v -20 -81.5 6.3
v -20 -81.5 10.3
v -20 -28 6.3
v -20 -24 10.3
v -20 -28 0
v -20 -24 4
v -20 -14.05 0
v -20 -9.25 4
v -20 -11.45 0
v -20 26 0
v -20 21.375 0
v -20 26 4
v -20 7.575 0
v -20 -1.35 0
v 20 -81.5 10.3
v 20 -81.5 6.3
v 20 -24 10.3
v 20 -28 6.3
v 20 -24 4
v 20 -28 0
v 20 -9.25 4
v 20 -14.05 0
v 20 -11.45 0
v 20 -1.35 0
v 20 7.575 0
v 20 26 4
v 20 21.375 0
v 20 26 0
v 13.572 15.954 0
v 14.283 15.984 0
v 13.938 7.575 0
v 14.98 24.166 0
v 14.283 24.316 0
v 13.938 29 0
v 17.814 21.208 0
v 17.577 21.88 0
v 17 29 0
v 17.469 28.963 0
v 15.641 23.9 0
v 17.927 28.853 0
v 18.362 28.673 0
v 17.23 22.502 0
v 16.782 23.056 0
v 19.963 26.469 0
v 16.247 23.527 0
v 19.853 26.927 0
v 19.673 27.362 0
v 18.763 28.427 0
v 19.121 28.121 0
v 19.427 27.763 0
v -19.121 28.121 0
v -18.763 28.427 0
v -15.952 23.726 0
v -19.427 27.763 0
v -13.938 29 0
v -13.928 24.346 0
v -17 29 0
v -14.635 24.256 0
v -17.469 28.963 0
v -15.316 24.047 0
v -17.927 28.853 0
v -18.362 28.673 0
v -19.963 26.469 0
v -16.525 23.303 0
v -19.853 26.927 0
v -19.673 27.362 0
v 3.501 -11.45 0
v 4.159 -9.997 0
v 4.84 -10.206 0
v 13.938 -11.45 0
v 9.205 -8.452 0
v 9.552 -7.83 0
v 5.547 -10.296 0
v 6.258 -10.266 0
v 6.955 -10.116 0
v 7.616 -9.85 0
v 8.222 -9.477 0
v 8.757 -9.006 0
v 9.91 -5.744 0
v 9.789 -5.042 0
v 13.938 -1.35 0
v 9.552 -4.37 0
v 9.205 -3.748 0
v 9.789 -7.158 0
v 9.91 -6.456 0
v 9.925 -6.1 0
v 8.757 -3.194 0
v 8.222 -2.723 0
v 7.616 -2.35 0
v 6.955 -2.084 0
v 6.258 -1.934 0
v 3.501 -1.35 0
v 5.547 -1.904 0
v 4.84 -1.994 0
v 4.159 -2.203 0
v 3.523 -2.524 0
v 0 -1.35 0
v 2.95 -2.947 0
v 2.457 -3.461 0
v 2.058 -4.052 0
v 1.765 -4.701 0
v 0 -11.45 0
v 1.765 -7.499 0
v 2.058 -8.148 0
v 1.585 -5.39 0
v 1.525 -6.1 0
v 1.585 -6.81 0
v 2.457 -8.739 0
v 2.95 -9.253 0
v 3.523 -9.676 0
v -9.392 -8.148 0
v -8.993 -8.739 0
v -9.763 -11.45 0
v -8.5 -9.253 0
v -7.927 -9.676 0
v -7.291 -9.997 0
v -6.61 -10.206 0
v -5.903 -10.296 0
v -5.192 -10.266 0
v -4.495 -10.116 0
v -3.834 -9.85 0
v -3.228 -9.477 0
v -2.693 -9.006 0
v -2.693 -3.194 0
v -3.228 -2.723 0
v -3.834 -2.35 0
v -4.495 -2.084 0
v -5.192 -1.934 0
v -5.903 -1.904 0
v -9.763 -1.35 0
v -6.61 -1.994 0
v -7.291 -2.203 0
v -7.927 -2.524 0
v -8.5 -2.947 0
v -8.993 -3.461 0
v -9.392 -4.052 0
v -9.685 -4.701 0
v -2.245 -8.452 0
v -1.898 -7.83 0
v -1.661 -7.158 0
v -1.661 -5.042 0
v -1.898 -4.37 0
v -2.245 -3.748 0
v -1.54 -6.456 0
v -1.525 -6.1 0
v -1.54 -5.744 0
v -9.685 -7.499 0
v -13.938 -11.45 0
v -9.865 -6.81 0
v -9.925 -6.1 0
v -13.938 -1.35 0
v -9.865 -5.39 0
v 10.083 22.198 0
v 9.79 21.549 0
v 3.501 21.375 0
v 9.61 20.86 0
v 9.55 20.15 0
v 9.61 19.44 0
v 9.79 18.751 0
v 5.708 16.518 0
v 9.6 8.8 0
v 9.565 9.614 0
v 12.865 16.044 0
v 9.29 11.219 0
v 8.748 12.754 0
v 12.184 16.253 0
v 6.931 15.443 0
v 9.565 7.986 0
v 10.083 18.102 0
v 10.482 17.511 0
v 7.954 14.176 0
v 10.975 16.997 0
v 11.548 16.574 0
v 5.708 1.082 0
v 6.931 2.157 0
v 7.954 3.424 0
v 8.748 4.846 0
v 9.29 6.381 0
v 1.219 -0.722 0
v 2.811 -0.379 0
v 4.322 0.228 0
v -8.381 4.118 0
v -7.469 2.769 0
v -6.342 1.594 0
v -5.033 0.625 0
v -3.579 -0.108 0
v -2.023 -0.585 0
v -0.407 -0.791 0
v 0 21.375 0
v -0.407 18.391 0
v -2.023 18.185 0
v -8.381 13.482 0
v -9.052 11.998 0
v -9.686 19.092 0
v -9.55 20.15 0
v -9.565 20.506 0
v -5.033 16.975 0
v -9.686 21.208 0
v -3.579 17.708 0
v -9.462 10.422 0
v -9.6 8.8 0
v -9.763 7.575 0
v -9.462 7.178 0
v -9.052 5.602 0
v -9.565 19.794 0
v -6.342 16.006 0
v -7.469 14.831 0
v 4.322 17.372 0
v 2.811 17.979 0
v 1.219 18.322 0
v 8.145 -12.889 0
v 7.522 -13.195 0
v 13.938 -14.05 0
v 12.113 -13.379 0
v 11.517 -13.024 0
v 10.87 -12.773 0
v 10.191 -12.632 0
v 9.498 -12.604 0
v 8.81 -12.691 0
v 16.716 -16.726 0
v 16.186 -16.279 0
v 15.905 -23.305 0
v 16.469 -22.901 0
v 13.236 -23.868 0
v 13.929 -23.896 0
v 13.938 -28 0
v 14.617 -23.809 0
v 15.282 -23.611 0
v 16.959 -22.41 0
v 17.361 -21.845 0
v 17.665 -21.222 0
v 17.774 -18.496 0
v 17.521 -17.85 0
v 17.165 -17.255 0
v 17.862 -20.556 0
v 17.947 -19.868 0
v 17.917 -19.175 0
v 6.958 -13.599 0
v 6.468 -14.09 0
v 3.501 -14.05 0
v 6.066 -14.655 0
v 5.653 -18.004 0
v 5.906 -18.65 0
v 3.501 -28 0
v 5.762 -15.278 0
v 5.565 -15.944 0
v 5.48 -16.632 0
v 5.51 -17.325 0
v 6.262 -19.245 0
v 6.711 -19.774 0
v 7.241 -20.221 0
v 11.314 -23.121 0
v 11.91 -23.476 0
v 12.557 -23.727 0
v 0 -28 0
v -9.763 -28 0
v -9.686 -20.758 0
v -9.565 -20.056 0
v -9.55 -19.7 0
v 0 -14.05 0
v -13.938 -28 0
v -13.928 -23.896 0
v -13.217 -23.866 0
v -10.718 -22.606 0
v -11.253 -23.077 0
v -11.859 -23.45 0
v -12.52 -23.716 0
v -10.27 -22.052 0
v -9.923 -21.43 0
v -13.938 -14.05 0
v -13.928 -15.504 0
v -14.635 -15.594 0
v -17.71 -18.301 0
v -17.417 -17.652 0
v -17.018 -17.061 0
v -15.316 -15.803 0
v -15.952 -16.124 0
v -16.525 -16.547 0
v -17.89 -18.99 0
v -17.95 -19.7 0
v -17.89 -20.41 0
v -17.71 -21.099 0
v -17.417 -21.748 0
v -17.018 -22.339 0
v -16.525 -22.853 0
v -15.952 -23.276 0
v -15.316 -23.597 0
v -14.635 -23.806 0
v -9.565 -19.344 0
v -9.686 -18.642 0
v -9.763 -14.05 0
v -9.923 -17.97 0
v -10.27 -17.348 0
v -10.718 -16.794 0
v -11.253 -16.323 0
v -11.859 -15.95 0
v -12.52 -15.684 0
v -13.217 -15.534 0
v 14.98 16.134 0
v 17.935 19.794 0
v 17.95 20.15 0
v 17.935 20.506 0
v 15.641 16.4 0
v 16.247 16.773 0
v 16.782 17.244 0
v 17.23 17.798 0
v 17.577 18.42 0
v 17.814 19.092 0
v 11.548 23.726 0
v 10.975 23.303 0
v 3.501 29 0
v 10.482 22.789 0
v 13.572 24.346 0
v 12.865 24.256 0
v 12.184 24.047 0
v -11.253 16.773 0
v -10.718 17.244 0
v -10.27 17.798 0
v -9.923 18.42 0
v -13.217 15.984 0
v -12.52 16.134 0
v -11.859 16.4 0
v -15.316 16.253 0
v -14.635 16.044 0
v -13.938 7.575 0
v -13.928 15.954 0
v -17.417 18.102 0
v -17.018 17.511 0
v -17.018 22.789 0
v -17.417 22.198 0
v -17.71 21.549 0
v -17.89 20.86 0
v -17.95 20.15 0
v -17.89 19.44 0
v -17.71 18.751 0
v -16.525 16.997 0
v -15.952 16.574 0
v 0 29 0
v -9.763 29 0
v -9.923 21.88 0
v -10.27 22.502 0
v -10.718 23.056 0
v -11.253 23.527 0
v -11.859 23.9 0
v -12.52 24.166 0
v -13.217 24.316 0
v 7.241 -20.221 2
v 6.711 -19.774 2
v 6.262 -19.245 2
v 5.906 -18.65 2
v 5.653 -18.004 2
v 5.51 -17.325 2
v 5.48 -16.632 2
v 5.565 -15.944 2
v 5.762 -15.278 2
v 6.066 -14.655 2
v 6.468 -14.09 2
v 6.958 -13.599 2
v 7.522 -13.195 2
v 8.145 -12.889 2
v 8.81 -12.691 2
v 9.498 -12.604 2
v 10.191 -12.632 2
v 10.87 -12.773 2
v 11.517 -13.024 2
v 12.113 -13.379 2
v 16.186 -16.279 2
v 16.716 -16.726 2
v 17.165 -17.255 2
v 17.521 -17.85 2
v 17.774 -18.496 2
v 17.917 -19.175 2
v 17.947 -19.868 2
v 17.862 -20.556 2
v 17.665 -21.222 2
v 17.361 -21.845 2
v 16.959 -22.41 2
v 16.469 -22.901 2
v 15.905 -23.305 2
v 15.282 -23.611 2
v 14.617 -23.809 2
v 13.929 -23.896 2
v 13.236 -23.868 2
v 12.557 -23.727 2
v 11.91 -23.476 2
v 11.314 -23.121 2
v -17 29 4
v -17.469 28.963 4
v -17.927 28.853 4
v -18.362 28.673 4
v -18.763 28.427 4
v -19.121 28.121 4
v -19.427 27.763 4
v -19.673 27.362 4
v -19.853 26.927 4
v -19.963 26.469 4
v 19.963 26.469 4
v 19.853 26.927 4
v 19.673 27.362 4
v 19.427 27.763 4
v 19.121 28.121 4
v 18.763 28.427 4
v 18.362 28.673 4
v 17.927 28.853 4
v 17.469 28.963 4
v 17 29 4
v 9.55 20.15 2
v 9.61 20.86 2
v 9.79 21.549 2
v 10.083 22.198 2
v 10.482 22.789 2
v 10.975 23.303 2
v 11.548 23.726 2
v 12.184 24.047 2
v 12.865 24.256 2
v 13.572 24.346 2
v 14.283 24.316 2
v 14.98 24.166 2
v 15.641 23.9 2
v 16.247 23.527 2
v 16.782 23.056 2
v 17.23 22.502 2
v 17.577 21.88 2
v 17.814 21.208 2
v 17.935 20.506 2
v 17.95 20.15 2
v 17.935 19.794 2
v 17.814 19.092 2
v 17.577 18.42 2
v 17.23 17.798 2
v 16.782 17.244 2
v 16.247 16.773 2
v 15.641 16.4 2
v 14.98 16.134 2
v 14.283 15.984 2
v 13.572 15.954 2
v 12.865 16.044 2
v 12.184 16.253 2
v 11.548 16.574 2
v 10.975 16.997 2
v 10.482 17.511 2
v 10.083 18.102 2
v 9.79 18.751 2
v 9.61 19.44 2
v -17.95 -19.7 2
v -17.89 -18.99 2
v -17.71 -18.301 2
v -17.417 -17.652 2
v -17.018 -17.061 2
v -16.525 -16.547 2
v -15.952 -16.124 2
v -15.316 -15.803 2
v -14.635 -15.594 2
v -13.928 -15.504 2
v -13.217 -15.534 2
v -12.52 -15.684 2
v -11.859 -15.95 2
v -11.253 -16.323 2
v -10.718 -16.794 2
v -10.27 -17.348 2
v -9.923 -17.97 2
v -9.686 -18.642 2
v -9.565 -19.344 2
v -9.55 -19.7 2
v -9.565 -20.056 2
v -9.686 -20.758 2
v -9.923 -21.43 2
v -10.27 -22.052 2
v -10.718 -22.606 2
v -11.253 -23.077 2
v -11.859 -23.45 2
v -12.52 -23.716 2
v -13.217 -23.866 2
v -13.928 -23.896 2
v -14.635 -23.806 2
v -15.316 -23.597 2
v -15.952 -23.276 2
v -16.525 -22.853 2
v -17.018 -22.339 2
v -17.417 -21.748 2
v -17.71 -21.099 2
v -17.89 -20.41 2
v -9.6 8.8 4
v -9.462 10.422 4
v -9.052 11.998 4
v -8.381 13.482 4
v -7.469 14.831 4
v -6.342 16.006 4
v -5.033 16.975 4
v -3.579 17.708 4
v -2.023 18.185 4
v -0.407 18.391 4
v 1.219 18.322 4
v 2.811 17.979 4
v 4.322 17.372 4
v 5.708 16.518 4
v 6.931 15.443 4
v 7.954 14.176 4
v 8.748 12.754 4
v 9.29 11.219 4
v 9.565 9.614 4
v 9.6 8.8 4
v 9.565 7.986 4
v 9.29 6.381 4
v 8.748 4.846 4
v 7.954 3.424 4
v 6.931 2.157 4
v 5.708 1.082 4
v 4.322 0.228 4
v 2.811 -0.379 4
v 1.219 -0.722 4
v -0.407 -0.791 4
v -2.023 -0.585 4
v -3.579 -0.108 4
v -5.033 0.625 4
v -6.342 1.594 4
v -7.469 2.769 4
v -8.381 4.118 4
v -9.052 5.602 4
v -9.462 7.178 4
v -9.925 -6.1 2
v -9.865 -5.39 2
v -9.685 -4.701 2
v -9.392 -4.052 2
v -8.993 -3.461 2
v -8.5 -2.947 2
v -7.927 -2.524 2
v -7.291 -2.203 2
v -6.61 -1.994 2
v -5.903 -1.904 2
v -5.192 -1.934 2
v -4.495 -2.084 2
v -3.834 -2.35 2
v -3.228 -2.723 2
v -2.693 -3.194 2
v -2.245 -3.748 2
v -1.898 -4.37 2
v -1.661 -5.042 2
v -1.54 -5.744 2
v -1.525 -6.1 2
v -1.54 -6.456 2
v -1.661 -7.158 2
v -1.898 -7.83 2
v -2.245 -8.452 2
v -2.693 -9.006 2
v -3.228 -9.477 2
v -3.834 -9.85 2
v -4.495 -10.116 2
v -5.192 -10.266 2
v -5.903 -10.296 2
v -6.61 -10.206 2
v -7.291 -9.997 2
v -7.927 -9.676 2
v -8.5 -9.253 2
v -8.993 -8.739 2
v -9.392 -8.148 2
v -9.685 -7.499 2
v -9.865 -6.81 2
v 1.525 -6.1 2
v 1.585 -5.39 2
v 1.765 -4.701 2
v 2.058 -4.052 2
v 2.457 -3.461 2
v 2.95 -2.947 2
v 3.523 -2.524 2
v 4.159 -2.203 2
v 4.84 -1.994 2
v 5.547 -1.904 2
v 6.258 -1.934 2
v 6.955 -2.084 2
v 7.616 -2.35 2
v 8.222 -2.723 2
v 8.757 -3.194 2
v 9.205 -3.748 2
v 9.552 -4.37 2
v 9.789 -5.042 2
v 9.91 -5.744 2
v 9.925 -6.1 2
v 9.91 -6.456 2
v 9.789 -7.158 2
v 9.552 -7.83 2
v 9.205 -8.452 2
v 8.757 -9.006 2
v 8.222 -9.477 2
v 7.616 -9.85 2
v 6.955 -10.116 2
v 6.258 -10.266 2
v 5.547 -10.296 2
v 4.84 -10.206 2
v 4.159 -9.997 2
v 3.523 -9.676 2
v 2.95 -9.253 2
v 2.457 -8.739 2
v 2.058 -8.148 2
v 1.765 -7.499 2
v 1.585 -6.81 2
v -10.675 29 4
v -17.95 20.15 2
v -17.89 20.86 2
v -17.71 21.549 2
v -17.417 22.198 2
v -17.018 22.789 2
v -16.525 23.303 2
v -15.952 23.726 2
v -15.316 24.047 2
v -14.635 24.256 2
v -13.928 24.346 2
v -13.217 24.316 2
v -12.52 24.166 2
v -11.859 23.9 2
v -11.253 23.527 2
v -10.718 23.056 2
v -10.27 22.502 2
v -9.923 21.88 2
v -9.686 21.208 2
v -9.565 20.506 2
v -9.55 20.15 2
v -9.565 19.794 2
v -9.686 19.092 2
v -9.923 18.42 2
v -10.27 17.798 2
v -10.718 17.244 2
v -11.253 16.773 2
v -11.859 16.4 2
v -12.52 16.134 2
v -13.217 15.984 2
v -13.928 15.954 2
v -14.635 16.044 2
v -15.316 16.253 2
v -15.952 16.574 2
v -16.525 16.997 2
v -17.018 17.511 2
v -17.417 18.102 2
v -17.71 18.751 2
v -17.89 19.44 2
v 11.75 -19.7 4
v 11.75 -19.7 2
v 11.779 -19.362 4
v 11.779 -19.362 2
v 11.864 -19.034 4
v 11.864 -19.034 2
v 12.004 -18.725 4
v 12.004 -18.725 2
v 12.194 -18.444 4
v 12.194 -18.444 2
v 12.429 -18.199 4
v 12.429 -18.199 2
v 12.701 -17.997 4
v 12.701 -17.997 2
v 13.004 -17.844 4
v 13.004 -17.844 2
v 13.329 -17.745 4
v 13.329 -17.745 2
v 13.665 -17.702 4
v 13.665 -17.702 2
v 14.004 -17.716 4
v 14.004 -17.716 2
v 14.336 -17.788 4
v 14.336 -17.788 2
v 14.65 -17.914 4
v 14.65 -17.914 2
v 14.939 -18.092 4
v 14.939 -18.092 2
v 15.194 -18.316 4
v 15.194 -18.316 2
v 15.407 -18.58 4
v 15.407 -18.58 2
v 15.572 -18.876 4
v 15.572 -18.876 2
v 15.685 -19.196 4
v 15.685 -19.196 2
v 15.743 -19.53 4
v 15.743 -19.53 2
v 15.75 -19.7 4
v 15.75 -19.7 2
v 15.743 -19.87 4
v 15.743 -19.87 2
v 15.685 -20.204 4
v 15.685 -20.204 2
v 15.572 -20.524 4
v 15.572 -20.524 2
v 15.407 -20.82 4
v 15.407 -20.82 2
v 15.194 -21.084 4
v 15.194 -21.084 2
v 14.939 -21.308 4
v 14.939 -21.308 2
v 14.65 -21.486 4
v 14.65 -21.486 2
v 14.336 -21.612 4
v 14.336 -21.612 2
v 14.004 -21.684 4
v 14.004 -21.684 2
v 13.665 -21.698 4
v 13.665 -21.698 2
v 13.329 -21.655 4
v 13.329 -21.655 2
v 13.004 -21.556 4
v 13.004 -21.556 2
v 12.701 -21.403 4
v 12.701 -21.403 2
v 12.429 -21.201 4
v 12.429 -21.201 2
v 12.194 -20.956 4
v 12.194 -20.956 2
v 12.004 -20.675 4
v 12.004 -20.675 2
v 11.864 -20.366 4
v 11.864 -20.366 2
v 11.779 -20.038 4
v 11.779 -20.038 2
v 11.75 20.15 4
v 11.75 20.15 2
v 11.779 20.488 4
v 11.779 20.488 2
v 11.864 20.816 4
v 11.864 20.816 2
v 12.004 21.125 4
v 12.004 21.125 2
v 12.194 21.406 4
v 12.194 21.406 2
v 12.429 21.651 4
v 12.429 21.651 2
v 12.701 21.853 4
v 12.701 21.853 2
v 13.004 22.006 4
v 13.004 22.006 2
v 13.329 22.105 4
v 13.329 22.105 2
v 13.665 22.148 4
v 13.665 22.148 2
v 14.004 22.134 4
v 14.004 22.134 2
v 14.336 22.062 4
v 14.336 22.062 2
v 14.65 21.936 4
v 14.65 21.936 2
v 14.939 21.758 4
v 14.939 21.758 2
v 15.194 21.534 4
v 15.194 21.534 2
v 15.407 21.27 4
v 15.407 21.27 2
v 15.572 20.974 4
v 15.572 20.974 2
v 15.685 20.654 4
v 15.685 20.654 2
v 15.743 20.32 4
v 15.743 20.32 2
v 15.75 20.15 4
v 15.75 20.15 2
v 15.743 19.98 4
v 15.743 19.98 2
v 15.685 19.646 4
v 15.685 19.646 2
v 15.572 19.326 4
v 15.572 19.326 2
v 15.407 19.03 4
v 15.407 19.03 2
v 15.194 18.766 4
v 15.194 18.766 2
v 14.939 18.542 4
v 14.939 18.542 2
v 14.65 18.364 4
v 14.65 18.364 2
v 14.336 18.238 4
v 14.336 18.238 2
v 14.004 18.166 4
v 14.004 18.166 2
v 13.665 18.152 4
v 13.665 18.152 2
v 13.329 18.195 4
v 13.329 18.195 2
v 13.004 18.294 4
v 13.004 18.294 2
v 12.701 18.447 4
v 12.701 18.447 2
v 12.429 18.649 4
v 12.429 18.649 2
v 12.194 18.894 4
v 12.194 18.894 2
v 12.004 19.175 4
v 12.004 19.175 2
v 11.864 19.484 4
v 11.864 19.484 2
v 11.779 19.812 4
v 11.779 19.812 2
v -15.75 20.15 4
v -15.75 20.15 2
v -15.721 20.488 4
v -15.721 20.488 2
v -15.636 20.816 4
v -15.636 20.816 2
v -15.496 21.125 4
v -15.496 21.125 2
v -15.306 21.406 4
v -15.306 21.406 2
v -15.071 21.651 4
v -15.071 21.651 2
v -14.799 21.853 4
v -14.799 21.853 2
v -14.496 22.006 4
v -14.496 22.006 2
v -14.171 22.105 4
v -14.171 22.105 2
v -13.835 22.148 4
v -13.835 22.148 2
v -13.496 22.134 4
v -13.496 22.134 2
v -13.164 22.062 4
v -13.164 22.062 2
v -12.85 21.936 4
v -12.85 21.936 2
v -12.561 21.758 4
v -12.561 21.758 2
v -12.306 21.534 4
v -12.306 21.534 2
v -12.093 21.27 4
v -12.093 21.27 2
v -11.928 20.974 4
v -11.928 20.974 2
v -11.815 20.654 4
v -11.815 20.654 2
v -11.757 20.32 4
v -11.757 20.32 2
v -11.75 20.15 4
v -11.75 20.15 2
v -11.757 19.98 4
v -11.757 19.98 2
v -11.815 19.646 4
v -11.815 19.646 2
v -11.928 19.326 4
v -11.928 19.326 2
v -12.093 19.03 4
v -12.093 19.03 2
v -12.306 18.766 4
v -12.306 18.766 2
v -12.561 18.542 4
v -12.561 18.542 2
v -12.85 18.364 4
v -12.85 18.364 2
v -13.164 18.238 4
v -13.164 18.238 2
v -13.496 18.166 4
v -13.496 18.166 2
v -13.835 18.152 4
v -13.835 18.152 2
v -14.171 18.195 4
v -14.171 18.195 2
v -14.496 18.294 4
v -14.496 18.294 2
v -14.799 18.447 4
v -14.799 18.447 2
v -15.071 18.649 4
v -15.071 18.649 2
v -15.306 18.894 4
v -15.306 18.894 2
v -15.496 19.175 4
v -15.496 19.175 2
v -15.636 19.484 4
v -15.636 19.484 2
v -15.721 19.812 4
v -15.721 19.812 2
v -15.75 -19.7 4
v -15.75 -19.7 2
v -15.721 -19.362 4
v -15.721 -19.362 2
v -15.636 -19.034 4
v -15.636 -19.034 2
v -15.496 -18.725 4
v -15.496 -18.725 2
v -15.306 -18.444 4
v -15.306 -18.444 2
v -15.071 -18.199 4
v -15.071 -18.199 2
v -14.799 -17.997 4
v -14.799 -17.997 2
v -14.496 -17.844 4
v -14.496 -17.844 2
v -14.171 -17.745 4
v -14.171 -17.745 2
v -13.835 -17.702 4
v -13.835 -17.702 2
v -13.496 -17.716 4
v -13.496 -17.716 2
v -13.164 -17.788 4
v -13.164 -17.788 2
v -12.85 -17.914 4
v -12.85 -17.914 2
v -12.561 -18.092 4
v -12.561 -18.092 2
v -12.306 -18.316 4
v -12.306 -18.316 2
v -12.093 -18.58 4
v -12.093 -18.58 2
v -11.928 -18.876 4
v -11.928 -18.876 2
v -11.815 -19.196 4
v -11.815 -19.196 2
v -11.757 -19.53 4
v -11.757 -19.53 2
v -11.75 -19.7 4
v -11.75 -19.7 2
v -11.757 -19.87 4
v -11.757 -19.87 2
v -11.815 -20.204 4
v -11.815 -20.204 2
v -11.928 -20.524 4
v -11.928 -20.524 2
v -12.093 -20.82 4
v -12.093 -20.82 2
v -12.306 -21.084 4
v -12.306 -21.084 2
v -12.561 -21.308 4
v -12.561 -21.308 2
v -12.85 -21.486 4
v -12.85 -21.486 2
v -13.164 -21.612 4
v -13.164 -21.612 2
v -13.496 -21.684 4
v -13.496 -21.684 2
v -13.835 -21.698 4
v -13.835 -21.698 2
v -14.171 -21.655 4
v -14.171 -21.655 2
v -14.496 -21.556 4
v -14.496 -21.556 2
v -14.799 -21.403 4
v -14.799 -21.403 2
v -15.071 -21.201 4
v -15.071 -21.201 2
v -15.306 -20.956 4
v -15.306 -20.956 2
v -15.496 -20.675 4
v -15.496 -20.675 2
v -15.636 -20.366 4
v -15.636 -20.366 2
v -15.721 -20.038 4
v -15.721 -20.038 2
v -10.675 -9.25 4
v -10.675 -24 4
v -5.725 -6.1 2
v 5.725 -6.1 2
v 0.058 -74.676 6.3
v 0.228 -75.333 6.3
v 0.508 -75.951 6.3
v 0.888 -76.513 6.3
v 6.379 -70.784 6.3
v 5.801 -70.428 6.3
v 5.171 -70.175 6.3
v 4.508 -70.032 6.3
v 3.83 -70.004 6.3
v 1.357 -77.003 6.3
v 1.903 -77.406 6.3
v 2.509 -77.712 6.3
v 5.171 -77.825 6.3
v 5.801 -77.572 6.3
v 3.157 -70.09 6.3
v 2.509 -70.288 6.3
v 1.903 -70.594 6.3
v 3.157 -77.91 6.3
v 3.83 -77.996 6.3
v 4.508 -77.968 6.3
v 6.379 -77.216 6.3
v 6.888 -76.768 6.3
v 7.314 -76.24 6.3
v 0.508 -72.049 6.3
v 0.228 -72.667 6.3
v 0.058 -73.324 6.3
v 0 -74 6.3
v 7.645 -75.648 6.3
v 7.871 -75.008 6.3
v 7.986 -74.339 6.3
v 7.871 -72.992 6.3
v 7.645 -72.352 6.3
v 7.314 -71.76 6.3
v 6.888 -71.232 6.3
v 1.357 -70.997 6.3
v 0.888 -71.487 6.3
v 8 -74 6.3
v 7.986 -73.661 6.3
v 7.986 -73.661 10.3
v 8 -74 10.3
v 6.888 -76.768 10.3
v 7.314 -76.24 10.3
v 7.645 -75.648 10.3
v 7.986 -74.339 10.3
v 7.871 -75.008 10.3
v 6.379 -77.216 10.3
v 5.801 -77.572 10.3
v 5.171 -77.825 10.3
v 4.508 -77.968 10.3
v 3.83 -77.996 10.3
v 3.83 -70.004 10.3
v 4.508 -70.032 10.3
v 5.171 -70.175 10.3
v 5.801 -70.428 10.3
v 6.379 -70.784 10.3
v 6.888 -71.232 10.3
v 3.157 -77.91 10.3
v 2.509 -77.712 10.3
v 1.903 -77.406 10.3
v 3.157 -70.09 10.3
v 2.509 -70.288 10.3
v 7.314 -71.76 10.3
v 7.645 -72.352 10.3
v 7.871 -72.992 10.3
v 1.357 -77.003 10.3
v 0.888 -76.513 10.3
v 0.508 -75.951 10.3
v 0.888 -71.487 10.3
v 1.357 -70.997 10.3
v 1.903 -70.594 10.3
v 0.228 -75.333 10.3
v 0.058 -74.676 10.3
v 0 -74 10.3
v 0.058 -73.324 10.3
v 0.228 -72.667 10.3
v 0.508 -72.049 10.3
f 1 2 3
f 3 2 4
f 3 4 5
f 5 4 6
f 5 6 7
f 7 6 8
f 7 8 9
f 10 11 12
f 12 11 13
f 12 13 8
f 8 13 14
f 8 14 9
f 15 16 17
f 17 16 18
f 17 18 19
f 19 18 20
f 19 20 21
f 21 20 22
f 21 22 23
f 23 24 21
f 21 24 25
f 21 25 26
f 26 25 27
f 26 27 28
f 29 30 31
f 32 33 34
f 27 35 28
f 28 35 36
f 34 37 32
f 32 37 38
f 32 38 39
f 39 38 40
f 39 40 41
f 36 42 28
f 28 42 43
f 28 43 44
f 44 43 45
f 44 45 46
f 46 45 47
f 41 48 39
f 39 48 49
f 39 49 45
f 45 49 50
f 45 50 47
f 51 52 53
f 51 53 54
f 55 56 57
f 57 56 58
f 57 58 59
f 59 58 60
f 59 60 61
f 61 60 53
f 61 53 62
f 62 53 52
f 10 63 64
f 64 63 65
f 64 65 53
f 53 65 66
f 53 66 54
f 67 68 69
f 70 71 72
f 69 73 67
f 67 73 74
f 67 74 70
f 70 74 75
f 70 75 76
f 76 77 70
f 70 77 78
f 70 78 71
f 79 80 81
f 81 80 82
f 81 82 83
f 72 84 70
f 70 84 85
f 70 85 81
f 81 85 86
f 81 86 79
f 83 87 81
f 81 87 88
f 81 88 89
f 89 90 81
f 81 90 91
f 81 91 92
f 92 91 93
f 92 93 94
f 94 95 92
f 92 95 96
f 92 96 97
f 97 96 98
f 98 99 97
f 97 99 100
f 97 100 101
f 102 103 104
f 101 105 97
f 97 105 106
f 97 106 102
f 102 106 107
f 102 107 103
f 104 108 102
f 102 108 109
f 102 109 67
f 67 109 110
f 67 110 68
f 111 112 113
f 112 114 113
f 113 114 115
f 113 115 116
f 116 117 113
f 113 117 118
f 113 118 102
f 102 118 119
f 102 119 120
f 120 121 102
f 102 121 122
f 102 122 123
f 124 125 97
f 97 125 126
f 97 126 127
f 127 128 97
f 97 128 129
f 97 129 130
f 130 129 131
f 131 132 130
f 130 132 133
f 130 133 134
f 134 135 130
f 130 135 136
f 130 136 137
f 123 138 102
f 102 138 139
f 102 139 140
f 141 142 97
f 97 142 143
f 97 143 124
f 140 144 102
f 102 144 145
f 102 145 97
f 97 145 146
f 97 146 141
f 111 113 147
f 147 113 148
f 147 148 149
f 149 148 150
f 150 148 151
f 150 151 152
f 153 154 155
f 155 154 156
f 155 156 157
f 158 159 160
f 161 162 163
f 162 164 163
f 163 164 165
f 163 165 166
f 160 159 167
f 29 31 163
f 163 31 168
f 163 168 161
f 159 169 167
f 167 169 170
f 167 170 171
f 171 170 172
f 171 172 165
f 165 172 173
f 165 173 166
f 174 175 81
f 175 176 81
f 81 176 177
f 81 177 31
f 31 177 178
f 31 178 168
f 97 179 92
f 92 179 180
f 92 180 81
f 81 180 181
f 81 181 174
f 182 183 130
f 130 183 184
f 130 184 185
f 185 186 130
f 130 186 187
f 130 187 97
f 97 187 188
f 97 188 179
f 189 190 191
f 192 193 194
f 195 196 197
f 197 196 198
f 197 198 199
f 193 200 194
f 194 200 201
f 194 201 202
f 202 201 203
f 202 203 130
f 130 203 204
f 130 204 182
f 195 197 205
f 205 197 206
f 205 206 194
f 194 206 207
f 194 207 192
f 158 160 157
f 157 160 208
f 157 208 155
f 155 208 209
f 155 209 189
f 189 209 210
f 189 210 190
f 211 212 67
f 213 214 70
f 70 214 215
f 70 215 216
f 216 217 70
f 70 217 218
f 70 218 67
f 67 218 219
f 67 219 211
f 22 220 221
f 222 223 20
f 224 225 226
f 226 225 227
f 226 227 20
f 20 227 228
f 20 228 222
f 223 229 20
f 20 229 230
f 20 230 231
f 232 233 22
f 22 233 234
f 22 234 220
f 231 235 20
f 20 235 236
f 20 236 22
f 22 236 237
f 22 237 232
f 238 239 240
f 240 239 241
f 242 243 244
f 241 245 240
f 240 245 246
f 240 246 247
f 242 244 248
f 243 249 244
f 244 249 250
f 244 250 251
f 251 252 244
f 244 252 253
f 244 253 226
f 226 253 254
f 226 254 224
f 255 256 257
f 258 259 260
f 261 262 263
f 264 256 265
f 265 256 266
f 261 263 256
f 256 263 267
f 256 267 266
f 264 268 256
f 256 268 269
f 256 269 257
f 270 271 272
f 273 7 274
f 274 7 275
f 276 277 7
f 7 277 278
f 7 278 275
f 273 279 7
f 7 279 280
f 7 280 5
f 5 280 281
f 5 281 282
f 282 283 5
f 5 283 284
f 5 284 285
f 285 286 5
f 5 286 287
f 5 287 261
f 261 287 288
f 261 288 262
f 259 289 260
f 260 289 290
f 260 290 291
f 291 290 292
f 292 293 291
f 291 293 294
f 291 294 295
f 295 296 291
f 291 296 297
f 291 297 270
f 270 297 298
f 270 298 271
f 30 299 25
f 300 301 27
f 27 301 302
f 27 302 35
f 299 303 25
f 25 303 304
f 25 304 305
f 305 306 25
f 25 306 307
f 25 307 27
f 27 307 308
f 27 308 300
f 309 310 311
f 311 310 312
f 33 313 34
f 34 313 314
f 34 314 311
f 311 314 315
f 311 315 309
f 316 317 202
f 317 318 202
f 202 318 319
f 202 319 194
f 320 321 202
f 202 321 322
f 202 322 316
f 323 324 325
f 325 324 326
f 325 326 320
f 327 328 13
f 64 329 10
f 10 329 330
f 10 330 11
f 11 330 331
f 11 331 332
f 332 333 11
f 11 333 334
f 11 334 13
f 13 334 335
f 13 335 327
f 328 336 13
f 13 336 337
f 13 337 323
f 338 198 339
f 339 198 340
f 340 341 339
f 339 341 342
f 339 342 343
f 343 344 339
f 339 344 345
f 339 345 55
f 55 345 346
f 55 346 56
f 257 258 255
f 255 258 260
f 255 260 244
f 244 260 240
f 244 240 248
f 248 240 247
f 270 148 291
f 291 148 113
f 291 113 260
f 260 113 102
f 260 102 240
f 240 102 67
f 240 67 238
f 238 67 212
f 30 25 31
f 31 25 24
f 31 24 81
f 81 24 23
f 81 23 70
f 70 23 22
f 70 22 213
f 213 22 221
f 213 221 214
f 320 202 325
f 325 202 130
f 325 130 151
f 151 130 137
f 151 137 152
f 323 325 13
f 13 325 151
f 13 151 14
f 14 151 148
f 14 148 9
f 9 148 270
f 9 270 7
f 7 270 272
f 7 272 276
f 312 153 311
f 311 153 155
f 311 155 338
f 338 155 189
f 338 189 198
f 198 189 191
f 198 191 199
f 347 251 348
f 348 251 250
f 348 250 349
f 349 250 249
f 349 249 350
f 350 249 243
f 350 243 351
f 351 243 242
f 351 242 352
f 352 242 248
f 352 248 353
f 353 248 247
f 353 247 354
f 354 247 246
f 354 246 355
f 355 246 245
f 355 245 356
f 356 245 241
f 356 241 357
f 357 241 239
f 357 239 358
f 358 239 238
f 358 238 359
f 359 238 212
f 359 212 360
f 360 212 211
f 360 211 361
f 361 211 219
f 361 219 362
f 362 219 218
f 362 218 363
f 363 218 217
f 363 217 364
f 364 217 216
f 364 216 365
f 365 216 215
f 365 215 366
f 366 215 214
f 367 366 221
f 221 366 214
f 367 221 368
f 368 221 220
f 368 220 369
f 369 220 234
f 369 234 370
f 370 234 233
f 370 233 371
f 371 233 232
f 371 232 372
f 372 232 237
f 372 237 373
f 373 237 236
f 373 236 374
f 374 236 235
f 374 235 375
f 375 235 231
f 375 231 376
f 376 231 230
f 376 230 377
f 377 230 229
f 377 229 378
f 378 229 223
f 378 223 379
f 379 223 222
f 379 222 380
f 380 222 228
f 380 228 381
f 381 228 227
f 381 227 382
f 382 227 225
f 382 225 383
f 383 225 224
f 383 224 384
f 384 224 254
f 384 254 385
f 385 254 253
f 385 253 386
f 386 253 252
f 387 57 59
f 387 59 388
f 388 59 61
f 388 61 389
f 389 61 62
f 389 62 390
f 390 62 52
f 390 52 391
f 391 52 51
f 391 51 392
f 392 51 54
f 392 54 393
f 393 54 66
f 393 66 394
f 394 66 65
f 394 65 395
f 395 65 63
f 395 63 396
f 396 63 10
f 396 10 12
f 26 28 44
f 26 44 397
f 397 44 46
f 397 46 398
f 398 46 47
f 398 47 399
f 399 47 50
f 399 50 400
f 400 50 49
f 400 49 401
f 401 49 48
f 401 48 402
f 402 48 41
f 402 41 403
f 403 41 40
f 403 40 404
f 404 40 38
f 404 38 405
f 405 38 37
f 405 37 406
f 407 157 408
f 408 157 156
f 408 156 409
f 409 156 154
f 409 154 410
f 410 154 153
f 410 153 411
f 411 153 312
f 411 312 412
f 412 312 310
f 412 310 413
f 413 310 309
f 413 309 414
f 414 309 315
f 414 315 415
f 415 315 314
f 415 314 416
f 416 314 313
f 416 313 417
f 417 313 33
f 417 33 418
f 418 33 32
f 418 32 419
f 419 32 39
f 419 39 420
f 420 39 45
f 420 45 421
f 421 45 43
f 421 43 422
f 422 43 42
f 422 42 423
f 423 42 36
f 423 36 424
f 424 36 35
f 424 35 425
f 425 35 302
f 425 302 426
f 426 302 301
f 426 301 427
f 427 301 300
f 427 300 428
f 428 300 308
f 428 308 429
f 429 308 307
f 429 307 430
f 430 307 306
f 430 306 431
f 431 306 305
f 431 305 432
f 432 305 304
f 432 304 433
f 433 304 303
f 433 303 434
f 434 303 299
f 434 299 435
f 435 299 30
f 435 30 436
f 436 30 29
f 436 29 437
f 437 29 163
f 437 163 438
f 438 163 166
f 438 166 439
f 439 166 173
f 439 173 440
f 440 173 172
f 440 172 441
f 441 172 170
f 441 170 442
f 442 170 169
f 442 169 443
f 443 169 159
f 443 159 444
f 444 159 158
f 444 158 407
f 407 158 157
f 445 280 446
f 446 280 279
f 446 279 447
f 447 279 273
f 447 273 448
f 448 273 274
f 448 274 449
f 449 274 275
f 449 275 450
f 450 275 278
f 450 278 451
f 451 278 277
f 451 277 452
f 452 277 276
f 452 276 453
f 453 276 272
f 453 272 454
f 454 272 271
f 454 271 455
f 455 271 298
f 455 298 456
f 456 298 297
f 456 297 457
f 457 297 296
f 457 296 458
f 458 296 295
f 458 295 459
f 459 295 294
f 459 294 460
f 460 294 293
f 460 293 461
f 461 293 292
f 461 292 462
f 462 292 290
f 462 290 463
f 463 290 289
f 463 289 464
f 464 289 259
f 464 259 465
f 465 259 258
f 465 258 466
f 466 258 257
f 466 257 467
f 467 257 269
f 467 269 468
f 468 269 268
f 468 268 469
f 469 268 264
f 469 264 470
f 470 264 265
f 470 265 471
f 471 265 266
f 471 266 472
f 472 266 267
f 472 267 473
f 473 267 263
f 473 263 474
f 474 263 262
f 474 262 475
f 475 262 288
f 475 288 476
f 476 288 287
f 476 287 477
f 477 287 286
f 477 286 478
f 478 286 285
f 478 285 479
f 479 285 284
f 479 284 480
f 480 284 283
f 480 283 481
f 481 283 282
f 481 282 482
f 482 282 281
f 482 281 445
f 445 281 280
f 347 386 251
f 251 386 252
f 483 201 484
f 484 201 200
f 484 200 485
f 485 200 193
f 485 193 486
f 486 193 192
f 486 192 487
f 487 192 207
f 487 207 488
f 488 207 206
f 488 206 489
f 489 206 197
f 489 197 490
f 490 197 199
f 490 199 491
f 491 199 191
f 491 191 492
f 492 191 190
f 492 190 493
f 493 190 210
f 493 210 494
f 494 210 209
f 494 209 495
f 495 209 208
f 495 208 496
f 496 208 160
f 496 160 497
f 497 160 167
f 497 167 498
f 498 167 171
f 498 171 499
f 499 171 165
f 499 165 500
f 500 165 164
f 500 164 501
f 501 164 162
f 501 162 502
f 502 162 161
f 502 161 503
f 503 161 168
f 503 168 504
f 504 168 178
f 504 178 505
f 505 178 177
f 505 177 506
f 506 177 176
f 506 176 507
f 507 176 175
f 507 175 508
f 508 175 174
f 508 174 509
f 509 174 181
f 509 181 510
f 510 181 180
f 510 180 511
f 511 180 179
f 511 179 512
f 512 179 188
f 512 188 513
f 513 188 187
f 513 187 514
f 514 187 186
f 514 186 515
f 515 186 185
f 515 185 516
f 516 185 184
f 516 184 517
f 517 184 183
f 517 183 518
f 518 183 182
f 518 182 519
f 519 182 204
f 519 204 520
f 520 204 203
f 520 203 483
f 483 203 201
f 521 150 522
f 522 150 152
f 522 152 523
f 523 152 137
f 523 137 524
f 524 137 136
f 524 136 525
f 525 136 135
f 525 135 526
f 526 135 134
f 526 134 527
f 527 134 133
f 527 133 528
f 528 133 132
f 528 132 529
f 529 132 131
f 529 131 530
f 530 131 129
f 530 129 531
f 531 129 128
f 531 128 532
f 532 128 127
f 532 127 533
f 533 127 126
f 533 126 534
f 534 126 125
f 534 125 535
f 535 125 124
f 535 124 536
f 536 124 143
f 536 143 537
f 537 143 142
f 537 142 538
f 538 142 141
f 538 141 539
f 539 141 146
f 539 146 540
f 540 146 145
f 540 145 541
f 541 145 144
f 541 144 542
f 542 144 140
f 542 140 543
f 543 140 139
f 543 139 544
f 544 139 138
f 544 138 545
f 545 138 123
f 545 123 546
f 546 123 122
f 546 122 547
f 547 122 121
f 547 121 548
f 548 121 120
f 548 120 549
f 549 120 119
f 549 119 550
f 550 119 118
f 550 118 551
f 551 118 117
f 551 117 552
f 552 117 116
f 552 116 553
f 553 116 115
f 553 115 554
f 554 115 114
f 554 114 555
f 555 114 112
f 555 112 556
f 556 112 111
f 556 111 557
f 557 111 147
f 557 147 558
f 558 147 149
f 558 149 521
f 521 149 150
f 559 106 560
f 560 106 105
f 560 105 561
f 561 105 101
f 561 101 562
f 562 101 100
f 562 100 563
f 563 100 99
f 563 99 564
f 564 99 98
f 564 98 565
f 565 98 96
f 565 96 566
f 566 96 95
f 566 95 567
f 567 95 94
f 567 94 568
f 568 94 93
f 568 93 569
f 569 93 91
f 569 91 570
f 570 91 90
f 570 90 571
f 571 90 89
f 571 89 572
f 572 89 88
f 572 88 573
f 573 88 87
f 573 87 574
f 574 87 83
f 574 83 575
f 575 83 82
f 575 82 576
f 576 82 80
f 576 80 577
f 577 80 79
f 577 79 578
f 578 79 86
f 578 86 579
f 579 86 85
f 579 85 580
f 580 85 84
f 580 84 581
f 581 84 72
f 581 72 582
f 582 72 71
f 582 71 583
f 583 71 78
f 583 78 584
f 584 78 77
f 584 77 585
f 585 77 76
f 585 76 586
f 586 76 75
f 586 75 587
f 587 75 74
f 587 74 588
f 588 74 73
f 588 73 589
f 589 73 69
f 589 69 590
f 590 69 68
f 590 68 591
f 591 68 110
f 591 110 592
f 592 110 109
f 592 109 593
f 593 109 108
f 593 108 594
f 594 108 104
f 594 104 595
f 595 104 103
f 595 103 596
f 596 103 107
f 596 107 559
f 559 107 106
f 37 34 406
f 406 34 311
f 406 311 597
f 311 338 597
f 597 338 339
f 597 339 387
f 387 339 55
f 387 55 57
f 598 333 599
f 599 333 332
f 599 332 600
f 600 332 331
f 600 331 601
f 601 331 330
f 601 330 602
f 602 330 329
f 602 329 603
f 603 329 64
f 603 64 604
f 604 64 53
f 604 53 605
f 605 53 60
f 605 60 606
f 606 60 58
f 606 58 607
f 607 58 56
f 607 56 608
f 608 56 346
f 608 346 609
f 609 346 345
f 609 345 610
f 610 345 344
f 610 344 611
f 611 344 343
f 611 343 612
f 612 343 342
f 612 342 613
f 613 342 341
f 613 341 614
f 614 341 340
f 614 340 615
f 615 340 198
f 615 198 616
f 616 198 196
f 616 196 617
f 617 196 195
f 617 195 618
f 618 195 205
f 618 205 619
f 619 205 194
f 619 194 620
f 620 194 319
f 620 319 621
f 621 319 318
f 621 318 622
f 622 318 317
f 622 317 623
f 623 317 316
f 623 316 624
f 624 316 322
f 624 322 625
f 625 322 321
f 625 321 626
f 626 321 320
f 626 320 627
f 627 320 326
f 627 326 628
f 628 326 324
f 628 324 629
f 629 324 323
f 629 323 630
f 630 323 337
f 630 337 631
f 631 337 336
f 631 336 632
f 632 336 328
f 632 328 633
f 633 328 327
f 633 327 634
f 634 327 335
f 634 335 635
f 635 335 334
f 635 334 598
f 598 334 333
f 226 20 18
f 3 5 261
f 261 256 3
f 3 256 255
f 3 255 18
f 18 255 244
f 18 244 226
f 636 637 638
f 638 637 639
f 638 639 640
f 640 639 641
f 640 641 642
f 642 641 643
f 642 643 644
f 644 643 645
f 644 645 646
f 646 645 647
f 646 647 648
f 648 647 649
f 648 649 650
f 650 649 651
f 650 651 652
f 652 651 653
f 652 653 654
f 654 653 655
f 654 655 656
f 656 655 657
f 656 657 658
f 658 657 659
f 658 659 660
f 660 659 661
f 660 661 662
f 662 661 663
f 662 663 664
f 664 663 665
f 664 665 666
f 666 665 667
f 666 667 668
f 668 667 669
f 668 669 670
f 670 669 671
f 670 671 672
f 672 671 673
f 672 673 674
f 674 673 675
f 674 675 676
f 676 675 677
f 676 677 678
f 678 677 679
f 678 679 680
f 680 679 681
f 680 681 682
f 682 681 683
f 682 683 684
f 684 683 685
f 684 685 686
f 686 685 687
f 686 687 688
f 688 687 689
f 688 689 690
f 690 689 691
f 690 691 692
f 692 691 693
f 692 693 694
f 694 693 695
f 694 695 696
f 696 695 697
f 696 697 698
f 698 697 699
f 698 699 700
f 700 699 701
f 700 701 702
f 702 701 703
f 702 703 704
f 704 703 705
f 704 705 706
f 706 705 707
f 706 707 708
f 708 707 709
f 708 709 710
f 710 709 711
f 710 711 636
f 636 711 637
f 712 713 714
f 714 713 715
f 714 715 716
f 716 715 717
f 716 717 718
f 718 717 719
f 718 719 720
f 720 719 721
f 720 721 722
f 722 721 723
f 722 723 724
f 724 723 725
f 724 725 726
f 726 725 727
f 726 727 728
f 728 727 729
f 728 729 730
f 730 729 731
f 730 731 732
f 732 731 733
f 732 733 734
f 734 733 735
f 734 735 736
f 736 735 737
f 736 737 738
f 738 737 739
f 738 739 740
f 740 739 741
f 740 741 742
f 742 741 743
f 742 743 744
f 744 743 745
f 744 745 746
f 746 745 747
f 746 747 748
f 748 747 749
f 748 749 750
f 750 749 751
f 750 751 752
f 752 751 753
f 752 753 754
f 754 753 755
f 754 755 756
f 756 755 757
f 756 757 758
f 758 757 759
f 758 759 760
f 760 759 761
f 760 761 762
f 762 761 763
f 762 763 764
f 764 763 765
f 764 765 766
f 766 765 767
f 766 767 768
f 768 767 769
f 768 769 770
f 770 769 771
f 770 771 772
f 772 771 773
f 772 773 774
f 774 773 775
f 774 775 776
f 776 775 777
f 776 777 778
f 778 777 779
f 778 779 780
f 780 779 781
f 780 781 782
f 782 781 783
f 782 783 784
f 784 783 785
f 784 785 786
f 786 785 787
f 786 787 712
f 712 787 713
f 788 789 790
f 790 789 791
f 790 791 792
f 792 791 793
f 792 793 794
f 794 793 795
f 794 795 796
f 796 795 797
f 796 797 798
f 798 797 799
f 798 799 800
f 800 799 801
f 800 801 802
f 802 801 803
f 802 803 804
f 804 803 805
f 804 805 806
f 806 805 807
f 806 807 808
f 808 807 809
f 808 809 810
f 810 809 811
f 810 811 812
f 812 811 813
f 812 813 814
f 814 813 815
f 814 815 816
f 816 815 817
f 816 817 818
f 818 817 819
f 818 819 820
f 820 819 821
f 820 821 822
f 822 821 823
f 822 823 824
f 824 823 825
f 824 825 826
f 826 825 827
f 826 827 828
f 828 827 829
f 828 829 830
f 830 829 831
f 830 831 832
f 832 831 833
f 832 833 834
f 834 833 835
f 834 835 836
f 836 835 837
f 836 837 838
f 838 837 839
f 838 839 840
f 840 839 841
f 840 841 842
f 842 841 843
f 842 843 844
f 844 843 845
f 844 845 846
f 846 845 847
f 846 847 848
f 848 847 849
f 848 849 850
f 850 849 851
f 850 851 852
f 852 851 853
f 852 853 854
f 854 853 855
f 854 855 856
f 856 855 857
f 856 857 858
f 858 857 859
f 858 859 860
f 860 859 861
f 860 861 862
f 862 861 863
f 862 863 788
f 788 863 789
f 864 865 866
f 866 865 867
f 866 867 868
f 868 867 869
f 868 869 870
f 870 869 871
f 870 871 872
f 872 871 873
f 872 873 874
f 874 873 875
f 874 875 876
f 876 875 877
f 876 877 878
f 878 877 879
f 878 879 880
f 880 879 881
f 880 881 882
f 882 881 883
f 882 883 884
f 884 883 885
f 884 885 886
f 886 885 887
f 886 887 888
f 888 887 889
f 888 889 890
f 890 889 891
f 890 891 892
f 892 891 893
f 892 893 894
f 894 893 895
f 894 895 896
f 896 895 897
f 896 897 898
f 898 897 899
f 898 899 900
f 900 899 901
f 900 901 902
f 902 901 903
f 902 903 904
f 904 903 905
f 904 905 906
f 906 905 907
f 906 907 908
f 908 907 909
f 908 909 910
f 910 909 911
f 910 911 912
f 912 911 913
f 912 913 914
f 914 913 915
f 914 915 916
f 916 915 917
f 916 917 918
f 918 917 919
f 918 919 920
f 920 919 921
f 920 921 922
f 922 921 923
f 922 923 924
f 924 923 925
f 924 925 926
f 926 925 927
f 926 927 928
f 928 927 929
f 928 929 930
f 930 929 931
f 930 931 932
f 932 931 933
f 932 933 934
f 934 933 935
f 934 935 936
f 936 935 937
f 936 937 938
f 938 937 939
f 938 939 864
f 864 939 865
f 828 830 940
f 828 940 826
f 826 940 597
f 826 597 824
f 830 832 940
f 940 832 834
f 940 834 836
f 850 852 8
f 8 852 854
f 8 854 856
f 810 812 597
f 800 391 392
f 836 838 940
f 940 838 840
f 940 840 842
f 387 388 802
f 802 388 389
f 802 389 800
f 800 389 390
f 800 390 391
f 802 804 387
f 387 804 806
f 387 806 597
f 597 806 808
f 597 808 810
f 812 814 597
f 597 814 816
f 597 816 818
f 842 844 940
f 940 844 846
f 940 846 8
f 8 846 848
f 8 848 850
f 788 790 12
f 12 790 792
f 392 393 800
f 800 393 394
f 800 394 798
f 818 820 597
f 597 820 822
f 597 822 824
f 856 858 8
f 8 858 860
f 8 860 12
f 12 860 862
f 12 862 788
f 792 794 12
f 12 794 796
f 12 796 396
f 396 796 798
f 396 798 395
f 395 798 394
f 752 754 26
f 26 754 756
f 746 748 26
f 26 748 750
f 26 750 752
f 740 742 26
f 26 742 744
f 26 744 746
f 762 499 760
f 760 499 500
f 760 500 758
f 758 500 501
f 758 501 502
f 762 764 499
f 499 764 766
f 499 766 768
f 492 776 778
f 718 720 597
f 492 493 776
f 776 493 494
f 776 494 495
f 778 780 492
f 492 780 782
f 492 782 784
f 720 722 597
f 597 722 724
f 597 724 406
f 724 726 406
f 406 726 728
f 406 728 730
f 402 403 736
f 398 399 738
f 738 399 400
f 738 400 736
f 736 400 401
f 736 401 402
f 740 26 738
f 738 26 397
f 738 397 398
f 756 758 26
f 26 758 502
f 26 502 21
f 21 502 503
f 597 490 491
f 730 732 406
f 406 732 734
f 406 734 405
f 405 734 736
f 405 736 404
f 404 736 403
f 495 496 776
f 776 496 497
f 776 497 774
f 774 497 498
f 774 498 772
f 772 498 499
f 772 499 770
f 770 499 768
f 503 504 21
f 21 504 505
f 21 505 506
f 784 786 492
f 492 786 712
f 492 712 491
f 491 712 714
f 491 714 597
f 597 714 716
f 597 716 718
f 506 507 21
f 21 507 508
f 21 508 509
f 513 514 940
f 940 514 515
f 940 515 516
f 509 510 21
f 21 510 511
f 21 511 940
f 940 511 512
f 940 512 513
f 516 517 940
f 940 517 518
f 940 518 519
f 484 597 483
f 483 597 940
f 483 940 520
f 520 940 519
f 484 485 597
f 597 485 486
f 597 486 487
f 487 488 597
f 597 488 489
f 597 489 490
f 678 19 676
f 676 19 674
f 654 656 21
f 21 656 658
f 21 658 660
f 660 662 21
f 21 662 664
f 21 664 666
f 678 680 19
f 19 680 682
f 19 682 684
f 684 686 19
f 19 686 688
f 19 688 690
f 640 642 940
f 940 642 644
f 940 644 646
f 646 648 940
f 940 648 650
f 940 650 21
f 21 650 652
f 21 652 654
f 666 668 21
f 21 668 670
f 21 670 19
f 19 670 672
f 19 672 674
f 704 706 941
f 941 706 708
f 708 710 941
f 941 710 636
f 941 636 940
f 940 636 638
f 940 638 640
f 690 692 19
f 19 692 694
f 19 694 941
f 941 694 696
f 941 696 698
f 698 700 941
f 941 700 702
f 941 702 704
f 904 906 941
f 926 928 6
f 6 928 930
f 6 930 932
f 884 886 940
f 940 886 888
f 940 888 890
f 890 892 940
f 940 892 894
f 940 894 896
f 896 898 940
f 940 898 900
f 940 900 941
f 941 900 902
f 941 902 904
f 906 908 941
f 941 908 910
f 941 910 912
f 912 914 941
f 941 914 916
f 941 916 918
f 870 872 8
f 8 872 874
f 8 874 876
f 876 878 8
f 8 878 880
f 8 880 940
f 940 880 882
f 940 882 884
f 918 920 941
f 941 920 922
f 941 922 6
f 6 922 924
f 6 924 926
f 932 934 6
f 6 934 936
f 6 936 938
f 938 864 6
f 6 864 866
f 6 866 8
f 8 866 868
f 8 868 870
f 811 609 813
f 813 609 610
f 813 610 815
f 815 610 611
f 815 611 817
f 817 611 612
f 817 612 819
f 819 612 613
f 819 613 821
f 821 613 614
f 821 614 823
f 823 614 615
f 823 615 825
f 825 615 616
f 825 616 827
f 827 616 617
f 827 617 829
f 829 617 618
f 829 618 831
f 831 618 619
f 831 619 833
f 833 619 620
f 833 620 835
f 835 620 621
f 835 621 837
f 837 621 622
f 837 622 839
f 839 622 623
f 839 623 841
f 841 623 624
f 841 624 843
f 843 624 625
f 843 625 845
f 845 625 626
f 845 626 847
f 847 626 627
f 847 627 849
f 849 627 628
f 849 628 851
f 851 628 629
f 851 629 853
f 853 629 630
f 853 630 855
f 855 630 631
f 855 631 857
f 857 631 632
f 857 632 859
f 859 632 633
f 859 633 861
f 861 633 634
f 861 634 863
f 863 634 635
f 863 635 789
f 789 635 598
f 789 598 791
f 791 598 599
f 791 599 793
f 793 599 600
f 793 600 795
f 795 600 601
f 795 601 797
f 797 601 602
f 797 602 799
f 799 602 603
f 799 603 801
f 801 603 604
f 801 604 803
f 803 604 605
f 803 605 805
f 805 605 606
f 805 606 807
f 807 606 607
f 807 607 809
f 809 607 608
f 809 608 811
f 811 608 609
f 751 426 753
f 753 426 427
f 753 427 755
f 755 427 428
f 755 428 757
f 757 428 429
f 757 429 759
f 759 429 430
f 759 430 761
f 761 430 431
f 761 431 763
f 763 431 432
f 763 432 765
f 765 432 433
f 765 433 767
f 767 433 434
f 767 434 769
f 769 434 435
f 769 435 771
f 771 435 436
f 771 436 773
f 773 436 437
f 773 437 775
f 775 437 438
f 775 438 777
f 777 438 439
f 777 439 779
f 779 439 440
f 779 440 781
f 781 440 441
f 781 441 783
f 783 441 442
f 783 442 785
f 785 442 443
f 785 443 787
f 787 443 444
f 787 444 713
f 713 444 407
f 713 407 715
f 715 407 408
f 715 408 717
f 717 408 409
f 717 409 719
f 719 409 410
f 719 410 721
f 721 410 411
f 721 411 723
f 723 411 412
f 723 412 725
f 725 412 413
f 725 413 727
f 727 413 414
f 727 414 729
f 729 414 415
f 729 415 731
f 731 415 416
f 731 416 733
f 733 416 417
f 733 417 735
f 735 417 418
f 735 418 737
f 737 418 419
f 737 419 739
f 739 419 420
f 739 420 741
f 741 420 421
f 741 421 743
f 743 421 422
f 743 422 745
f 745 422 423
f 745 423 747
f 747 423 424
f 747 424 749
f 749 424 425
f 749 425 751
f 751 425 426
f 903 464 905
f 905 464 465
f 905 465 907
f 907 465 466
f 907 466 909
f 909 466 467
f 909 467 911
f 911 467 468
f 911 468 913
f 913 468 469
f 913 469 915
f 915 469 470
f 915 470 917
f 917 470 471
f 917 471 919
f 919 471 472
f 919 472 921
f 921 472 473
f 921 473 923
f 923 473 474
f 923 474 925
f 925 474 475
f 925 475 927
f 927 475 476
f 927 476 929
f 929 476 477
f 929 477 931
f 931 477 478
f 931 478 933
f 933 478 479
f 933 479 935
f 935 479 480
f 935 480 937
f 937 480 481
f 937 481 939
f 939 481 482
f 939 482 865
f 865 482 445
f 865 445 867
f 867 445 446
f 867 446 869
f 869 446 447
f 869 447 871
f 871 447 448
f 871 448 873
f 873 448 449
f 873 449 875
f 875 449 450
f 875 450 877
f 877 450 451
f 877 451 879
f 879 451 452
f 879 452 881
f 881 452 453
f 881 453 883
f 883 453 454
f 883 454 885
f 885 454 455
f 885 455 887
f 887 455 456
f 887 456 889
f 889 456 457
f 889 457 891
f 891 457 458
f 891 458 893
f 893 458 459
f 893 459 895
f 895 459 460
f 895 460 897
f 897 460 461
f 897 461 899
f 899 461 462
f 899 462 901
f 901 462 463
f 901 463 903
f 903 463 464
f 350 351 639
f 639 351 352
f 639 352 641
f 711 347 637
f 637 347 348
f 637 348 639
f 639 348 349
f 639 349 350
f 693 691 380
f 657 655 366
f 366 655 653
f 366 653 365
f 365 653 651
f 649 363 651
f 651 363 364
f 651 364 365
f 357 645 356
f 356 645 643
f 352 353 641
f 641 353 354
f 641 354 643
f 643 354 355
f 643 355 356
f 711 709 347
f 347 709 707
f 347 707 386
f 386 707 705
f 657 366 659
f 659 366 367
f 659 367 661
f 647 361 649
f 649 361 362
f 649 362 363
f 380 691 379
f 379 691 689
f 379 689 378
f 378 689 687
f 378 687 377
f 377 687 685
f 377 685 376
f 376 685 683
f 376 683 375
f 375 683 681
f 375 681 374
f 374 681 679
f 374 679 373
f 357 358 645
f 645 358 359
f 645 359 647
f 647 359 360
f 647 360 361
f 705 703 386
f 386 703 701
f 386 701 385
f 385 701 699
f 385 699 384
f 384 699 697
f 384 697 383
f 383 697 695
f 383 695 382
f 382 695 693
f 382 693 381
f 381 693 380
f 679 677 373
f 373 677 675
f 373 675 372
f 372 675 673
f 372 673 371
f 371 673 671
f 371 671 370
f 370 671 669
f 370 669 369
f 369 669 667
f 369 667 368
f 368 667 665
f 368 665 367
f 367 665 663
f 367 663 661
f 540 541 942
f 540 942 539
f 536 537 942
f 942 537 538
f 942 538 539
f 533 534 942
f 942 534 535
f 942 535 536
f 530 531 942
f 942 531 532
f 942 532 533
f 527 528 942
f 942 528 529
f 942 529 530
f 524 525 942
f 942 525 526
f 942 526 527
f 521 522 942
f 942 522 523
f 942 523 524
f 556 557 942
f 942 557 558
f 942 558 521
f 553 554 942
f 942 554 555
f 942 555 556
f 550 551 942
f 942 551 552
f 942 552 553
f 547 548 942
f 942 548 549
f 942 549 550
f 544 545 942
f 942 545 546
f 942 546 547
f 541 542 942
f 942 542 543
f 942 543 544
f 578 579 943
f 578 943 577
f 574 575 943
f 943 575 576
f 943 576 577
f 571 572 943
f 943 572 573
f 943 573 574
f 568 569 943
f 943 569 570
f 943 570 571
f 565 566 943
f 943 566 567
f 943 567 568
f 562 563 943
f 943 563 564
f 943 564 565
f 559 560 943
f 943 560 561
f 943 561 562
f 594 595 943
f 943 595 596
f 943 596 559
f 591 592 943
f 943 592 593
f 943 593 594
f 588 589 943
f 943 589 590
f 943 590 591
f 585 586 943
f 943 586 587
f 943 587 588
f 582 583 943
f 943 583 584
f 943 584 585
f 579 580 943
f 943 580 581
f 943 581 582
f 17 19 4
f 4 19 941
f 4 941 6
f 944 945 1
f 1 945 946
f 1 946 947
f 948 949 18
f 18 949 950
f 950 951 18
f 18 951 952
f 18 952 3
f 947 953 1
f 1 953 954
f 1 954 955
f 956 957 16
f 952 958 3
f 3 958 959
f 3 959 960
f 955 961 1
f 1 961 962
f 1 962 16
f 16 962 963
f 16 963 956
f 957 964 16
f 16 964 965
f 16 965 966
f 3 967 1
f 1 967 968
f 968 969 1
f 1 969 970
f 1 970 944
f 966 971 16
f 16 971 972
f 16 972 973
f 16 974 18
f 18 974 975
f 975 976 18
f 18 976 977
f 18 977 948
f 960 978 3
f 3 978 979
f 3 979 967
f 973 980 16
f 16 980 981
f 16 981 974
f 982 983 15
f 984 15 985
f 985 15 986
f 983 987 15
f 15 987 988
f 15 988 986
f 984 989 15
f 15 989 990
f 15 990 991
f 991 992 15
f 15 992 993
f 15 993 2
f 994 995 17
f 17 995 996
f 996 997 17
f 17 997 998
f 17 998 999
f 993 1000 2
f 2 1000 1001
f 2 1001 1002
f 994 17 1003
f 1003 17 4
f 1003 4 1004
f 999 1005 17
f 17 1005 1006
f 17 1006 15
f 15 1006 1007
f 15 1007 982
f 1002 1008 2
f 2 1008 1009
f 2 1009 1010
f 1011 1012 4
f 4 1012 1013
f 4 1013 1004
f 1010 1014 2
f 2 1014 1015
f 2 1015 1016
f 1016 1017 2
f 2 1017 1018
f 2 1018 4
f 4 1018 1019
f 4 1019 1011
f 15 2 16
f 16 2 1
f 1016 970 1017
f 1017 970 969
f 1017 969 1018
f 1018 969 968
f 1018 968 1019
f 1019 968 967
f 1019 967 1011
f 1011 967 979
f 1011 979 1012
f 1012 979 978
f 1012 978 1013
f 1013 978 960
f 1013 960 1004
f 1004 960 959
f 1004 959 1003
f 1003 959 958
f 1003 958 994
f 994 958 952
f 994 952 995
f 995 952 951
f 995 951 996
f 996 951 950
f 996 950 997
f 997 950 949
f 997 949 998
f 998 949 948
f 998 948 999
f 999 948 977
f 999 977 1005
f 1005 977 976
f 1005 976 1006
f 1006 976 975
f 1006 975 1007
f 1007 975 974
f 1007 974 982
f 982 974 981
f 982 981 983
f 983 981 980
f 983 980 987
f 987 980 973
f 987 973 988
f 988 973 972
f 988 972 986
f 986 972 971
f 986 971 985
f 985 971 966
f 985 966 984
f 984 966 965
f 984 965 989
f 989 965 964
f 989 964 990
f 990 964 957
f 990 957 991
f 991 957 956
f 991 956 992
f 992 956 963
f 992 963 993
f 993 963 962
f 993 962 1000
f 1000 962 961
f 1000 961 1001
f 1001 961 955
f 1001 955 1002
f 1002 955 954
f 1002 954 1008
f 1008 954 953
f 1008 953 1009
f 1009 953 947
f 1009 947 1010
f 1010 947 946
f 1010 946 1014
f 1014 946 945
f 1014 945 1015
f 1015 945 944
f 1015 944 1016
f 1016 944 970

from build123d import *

# Parameters (mm, degrees)
SKETCH1_R           = 4.2
SKETCH1_R_2         = 9.6
BOSS_EXTRUDE1_DEPTH = 2
SKETCH2_W           = 40
SKETCH2_H           = 2
CUT_EXTRUDE1_DEPTH  = 1
SKETCH4_R           = 2
SKETCH4_R_2         = 9.6
BOSS_EXTRUDE3_DEPTH = 2
SKETCH5_W           = 40
SKETCH5_H           = 4
BOSS_EXTRUDE4_DEPTH = 2.3
SKETCH7_W           = 40
SKETCH7_H           = 57.5
SKETCH7_R           = 4
BOSS_EXTRUDE6_DEPTH = 4


with BuildPart() as part:
    # Sketch1 → Boss-Extrude1 (new body)
    with BuildSketch(Plane.XY):
        with BuildLine():
            Line((20, -29), (-20, -29))
            Line((-20, -29), (-20, 26))
            ThreePointArc((-20, 26), (-19.121320344, 28.121320344), (-17, 29))
            Line((-17, 29), (17, 29))
            ThreePointArc((17, 29), (19.121320344, 28.121320344), (20, 26))
            Line((20, 26), (20, -29))
        make_face()
        with Locations((-13.75, 20.15)):
            Circle(SKETCH1_R, mode=Mode.SUBTRACT)
        with Locations((13.75, 20.15)):
            Circle(SKETCH1_R, mode=Mode.SUBTRACT)
        with Locations((-13.75, -19.7)):
            Circle(SKETCH1_R, mode=Mode.SUBTRACT)
        with Locations((0, 8.8)):
            Circle(SKETCH1_R_2, mode=Mode.SUBTRACT)
        with Locations((-5.725, -6.1)):
            Circle(SKETCH1_R, mode=Mode.SUBTRACT)
        with Locations((5.725, -6.1)):
            Circle(SKETCH1_R, mode=Mode.SUBTRACT)
        with BuildLine():
            Line((11.314, -23.121389192), (7.240917629, -20.221389192))
            ThreePointArc((7.240917629, -20.221389192), (6.255528438, -14.364), (12.112917629, -13.378610808))
            Line((12.112917629, -13.378610808), (16.186, -16.278610808))
            ThreePointArc((16.186, -16.278610808), (17.171389192, -22.136), (11.314, -23.121389192))
        make_face(mode=Mode.SUBTRACT)
    extrude(amount=BOSS_EXTRUDE1_DEPTH)

    # Sketch2 → Cut-Extrude1 (cut)
    with BuildSketch(Plane.XZ.offset(29)):
        with Locations((0, 1)):
            Rectangle(SKETCH2_W, SKETCH2_H)
    extrude(amount=-CUT_EXTRUDE1_DEPTH, mode=Mode.SUBTRACT)

    # Sketch4 → Boss-Extrude3 (add)
    with BuildSketch(Plane.XY.offset(2)):
        with BuildLine():
            Line((-17, 29), (17, 29))
            ThreePointArc((17, 29), (19.121320344, 28.121320344), (20, 26))
            Line((20, 26), (20, -28))
            Line((20, -28), (-20, -28))
            Line((-20, -28), (-20, 26))
            ThreePointArc((-20, 26), (-19.121320344, 28.121320344), (-17, 29))
        make_face()
        with Locations((-13.75, -19.7)):
            Circle(SKETCH4_R, mode=Mode.SUBTRACT)
        with Locations((-13.75, 20.15)):
            Circle(SKETCH4_R, mode=Mode.SUBTRACT)
        with Locations((13.75, 20.15)):
            Circle(SKETCH4_R, mode=Mode.SUBTRACT)
        with Locations((13.75, -19.7)):
            Circle(SKETCH4_R, mode=Mode.SUBTRACT)
        with Locations((0, 8.8)):
            Circle(SKETCH4_R_2, mode=Mode.SUBTRACT)
    extrude(amount=BOSS_EXTRUDE3_DEPTH)

    # Sketch5 → Boss-Extrude4 (add)
    with BuildSketch(Plane.XY.offset(4)):
        with Locations((0, -26)):
            Rectangle(SKETCH5_W, SKETCH5_H)
    extrude(amount=BOSS_EXTRUDE4_DEPTH)

    # Sketch7 → Boss-Extrude6 (add)
    with BuildSketch(Plane.XY.offset(6.3)):
        with Locations((0, -52.75)):
            Rectangle(SKETCH7_W, SKETCH7_H)
        with Locations((4, -74)):
            Circle(SKETCH7_R, mode=Mode.SUBTRACT)
    extrude(amount=BOSS_EXTRUDE6_DEPTH)


solid = part.part
